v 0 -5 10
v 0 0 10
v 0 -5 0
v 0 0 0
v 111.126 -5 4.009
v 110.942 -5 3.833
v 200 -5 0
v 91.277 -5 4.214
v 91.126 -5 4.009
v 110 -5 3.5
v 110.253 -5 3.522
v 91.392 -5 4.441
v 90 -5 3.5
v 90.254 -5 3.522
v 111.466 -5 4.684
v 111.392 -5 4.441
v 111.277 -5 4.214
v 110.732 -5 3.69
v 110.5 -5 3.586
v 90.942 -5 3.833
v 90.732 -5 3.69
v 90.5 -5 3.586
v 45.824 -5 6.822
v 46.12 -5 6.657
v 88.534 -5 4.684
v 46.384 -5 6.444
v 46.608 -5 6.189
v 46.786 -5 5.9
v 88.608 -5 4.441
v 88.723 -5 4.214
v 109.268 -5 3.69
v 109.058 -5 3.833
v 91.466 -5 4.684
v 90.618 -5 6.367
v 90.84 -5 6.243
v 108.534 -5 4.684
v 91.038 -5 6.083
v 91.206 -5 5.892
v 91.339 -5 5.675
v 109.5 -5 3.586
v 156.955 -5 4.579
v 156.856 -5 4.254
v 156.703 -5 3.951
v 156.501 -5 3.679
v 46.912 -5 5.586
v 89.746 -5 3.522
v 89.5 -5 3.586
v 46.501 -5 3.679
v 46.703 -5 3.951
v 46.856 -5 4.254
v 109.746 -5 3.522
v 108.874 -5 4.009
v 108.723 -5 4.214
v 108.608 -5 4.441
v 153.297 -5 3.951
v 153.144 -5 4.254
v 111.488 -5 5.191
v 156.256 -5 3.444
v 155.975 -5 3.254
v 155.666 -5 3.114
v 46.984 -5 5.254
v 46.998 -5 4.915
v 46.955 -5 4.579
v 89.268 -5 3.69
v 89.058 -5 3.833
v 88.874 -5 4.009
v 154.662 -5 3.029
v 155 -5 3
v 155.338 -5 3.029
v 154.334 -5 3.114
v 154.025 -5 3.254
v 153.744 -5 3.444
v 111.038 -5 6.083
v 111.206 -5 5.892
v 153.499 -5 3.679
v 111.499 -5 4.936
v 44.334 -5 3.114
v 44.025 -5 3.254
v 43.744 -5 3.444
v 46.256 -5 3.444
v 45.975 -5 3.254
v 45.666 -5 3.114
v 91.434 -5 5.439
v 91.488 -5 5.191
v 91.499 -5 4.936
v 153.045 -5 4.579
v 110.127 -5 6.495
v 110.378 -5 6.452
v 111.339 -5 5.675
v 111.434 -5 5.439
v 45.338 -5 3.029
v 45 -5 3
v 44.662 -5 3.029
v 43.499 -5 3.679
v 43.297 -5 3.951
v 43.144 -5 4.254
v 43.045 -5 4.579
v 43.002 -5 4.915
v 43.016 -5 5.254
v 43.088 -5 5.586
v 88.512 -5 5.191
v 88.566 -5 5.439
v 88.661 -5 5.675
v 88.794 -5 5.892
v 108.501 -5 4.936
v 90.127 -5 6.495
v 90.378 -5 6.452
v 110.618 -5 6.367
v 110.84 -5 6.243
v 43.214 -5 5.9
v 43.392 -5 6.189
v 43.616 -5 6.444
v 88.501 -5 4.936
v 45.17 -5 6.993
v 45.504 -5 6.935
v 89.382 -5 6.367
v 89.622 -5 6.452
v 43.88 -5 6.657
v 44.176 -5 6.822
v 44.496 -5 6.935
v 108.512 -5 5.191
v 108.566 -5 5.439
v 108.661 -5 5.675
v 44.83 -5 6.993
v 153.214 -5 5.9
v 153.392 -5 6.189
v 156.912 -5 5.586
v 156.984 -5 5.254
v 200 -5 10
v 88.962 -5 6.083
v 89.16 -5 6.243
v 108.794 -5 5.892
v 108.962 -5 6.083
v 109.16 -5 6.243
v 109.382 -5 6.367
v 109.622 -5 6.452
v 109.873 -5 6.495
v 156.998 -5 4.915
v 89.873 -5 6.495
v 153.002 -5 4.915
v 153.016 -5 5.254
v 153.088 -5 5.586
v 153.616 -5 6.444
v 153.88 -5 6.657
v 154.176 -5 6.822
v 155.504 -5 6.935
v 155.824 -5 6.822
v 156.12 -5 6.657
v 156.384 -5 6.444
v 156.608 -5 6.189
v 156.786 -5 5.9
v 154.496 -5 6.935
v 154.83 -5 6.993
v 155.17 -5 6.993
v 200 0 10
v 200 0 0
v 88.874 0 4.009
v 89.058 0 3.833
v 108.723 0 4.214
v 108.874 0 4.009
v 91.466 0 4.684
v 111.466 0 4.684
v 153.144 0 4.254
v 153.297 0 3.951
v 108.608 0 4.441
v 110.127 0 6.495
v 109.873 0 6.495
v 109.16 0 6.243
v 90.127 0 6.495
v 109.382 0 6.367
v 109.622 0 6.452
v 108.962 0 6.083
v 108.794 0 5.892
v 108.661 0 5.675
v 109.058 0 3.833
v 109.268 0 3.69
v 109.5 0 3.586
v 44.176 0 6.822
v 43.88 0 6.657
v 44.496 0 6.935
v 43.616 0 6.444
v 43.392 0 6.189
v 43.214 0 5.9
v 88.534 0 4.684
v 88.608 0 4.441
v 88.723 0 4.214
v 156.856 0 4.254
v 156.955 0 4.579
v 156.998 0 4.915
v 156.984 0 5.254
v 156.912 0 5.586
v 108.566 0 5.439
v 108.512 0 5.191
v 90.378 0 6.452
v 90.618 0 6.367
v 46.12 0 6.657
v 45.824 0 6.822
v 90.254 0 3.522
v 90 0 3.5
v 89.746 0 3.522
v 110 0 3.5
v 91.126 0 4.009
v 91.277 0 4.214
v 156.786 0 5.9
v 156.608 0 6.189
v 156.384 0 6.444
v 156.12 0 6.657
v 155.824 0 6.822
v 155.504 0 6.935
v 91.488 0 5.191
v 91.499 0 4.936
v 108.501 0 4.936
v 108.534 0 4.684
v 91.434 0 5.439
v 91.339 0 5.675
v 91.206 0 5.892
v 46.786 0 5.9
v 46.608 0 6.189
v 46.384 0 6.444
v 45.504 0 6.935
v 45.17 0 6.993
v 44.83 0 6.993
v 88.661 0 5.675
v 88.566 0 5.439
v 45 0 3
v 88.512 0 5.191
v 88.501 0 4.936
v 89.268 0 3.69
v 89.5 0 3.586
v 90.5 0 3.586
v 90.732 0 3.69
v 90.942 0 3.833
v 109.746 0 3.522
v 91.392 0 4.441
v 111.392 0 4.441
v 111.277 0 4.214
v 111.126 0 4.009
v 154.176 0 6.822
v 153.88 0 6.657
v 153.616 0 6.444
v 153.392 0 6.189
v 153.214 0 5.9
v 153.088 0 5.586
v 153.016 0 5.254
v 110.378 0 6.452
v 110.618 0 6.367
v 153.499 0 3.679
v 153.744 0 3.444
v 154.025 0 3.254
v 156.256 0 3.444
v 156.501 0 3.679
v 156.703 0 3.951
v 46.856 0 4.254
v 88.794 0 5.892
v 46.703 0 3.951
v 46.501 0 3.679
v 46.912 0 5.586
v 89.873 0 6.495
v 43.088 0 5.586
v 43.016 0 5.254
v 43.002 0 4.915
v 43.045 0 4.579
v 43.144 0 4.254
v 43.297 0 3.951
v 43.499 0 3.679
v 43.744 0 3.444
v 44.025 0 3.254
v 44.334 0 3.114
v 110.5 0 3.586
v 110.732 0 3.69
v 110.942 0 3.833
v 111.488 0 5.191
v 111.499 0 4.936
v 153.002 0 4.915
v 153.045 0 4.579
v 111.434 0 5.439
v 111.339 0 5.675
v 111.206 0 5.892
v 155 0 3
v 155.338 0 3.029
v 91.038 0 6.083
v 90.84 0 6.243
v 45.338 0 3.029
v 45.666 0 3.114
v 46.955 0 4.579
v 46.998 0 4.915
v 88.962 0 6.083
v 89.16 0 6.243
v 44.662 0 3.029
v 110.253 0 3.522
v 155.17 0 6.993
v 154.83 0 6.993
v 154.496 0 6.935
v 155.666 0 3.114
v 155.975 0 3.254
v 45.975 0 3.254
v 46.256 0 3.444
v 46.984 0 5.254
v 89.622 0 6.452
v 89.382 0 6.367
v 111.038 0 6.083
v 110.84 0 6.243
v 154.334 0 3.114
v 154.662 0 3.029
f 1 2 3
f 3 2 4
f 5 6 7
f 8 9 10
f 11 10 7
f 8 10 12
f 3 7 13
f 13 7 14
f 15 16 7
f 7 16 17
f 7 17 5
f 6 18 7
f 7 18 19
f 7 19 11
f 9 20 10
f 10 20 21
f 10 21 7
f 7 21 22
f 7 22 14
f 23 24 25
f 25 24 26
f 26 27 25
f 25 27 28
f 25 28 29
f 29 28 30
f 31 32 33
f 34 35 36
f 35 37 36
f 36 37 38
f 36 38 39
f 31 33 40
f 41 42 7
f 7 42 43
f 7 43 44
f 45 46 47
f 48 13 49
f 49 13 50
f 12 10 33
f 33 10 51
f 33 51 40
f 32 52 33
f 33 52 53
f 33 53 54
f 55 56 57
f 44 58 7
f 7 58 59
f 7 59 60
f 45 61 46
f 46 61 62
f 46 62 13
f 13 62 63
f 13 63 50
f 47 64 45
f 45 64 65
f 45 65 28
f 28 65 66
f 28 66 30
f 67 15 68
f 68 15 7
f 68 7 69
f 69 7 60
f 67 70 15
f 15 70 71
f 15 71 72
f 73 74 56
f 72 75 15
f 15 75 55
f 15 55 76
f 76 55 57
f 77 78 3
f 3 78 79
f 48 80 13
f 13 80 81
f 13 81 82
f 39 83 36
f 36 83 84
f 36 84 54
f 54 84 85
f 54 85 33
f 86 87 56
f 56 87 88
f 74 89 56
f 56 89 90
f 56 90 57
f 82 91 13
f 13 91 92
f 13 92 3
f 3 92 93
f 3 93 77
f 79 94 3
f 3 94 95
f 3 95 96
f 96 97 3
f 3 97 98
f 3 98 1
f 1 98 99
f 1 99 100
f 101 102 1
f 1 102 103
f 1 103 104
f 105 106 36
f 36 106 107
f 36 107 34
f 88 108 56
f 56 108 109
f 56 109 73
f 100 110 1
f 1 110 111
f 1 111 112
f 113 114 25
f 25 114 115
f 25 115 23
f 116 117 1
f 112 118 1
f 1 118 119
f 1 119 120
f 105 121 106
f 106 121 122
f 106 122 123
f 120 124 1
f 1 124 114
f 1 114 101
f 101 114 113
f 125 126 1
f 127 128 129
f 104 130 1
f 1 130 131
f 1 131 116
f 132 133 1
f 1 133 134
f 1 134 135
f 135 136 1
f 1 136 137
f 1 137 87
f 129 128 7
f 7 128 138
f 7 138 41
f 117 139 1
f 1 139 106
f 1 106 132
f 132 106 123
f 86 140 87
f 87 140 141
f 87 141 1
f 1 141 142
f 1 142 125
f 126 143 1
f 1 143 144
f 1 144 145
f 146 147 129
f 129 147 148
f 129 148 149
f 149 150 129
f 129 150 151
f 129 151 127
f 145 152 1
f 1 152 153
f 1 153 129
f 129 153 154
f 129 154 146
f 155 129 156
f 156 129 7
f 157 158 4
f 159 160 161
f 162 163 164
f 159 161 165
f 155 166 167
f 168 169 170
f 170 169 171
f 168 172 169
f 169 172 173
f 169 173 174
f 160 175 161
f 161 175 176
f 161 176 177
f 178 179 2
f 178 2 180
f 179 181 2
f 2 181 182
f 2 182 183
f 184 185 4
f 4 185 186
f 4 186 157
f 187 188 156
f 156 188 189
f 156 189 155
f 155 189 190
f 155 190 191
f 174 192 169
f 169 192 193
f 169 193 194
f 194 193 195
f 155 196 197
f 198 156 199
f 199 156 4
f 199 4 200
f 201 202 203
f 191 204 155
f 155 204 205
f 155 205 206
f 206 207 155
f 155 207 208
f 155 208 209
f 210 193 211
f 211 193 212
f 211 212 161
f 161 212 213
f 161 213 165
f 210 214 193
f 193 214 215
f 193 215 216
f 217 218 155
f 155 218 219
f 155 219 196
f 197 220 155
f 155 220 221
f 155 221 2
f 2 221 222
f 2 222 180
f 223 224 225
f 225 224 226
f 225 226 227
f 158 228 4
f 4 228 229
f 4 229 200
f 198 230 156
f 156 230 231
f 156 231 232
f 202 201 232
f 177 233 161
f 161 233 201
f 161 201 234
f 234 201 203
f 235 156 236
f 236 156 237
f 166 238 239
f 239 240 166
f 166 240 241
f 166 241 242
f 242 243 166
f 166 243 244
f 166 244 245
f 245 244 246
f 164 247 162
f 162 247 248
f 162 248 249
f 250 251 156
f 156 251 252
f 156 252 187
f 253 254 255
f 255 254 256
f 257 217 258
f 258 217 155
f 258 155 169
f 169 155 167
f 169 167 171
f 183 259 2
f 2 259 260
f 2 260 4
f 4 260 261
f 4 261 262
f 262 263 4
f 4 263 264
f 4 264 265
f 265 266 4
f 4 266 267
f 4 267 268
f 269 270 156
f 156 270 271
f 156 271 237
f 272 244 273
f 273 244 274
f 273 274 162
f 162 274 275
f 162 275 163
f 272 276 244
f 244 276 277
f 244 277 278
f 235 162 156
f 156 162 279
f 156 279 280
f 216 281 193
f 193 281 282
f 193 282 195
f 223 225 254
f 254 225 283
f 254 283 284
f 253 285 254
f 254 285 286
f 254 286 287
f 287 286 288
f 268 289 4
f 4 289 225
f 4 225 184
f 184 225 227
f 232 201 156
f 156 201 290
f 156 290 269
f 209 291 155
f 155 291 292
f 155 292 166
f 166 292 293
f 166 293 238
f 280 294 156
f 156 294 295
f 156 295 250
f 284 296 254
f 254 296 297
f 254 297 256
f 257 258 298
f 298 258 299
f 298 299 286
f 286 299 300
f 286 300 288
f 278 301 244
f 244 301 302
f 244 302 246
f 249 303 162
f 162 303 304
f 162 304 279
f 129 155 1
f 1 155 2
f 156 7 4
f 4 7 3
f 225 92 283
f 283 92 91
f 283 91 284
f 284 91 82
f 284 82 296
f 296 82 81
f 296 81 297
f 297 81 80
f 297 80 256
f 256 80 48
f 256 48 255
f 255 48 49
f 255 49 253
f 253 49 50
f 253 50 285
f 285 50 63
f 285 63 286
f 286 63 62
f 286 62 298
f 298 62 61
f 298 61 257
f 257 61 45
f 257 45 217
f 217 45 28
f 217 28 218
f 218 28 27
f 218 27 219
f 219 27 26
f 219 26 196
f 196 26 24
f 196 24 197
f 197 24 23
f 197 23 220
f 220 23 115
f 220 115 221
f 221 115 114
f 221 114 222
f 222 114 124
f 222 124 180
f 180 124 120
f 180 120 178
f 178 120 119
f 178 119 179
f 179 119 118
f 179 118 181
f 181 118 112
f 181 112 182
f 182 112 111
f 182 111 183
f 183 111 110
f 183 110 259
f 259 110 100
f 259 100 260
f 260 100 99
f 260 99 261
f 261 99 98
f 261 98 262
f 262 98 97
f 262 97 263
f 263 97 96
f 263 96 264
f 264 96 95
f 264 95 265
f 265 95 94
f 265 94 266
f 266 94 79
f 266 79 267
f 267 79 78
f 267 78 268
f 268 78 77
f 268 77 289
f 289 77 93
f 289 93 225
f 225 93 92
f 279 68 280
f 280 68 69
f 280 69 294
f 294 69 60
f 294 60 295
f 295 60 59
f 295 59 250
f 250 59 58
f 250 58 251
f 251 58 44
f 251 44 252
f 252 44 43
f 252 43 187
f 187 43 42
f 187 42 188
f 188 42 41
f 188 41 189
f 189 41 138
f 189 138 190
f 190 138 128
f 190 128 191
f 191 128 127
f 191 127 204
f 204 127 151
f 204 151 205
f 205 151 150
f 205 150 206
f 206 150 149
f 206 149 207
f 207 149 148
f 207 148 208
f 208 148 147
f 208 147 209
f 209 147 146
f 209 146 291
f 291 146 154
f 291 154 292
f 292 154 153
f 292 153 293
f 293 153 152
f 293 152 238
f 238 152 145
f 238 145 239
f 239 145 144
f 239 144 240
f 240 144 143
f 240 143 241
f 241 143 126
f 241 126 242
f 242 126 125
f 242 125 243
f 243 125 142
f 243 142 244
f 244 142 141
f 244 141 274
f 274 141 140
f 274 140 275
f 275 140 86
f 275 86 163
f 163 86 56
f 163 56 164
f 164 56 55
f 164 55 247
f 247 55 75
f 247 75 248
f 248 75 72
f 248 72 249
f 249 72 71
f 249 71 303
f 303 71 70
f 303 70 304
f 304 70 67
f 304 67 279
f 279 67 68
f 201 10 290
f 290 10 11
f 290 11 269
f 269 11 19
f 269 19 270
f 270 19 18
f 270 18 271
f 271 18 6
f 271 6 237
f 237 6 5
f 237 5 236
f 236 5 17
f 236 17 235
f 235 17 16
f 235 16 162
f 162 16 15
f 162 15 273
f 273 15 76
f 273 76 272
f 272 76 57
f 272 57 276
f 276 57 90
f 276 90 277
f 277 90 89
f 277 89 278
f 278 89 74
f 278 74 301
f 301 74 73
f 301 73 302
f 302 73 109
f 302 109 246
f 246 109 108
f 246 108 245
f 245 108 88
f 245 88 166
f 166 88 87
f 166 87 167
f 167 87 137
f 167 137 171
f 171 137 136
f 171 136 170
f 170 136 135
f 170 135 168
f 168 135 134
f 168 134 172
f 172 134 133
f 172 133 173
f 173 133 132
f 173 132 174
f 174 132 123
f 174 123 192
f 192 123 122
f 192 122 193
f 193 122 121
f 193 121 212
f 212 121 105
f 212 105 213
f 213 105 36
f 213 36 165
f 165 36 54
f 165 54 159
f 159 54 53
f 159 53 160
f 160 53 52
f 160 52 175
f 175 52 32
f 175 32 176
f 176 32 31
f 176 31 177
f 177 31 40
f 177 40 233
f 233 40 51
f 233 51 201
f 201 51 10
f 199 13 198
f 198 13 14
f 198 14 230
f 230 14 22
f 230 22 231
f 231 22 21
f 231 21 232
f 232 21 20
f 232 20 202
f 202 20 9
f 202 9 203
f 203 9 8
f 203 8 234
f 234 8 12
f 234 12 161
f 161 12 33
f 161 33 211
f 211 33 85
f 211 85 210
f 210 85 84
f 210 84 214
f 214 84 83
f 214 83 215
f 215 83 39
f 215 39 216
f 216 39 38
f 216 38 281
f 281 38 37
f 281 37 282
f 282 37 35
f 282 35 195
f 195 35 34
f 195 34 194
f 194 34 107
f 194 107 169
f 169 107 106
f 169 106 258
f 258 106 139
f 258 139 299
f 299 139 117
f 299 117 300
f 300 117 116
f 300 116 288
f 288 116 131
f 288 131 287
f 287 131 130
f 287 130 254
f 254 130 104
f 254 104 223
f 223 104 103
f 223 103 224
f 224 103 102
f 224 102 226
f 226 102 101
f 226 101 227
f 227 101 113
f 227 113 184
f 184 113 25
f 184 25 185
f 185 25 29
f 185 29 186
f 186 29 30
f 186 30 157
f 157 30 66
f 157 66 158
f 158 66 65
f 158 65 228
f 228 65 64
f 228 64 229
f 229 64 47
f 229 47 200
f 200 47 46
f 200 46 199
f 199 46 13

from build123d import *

# Parameters (mm, degrees)
ESQUISSE1_W             = 200
ESQUISSE1_H             = 5
BOSS_EXTRU_1_DEPTH      = 10
ESQUISSE3_R             = 2
ENL_V_MAT_EXTRU_1_DEPTH = 10
ESQUISSE3_4_R           = 2
ESQUISSE3_4_R_2         = 1.5
ENL_V_MAT_EXTRU_2_DEPTH = 10


with BuildPart() as part:
    # Esquisse1 → Boss.-Extru.1 (new body)
    with BuildSketch(Plane.XY):
        with Locations((100, -2.5)):
            Rectangle(ESQUISSE1_W, ESQUISSE1_H)
    extrude(amount=BOSS_EXTRU_1_DEPTH)

    # Esquisse3 → Enlèv. mat.-Extru.1 (cut)
    with BuildSketch(Plane.XZ.offset(5)):
        with Locations((45, 5)):
            Circle(ESQUISSE3_R)
    extrude(amount=-ENL_V_MAT_EXTRU_1_DEPTH, mode=Mode.SUBTRACT)

    # Esquisse3<4> → Enlèv. mat.-Extru.2 (cut)
    with BuildSketch(Plane.XZ.offset(5)):
        with Locations((45, 5)):
            Circle(ESQUISSE3_4_R)
        with Locations((155, 5)):
            Circle(ESQUISSE3_4_R)
        with Locations((110, 5)):
            Circle(ESQUISSE3_4_R_2)
        with Locations((90, 5)):
            Circle(ESQUISSE3_4_R_2)
    extrude(amount=-ENL_V_MAT_EXTRU_2_DEPTH, mode=Mode.SUBTRACT)


solid = part.part
